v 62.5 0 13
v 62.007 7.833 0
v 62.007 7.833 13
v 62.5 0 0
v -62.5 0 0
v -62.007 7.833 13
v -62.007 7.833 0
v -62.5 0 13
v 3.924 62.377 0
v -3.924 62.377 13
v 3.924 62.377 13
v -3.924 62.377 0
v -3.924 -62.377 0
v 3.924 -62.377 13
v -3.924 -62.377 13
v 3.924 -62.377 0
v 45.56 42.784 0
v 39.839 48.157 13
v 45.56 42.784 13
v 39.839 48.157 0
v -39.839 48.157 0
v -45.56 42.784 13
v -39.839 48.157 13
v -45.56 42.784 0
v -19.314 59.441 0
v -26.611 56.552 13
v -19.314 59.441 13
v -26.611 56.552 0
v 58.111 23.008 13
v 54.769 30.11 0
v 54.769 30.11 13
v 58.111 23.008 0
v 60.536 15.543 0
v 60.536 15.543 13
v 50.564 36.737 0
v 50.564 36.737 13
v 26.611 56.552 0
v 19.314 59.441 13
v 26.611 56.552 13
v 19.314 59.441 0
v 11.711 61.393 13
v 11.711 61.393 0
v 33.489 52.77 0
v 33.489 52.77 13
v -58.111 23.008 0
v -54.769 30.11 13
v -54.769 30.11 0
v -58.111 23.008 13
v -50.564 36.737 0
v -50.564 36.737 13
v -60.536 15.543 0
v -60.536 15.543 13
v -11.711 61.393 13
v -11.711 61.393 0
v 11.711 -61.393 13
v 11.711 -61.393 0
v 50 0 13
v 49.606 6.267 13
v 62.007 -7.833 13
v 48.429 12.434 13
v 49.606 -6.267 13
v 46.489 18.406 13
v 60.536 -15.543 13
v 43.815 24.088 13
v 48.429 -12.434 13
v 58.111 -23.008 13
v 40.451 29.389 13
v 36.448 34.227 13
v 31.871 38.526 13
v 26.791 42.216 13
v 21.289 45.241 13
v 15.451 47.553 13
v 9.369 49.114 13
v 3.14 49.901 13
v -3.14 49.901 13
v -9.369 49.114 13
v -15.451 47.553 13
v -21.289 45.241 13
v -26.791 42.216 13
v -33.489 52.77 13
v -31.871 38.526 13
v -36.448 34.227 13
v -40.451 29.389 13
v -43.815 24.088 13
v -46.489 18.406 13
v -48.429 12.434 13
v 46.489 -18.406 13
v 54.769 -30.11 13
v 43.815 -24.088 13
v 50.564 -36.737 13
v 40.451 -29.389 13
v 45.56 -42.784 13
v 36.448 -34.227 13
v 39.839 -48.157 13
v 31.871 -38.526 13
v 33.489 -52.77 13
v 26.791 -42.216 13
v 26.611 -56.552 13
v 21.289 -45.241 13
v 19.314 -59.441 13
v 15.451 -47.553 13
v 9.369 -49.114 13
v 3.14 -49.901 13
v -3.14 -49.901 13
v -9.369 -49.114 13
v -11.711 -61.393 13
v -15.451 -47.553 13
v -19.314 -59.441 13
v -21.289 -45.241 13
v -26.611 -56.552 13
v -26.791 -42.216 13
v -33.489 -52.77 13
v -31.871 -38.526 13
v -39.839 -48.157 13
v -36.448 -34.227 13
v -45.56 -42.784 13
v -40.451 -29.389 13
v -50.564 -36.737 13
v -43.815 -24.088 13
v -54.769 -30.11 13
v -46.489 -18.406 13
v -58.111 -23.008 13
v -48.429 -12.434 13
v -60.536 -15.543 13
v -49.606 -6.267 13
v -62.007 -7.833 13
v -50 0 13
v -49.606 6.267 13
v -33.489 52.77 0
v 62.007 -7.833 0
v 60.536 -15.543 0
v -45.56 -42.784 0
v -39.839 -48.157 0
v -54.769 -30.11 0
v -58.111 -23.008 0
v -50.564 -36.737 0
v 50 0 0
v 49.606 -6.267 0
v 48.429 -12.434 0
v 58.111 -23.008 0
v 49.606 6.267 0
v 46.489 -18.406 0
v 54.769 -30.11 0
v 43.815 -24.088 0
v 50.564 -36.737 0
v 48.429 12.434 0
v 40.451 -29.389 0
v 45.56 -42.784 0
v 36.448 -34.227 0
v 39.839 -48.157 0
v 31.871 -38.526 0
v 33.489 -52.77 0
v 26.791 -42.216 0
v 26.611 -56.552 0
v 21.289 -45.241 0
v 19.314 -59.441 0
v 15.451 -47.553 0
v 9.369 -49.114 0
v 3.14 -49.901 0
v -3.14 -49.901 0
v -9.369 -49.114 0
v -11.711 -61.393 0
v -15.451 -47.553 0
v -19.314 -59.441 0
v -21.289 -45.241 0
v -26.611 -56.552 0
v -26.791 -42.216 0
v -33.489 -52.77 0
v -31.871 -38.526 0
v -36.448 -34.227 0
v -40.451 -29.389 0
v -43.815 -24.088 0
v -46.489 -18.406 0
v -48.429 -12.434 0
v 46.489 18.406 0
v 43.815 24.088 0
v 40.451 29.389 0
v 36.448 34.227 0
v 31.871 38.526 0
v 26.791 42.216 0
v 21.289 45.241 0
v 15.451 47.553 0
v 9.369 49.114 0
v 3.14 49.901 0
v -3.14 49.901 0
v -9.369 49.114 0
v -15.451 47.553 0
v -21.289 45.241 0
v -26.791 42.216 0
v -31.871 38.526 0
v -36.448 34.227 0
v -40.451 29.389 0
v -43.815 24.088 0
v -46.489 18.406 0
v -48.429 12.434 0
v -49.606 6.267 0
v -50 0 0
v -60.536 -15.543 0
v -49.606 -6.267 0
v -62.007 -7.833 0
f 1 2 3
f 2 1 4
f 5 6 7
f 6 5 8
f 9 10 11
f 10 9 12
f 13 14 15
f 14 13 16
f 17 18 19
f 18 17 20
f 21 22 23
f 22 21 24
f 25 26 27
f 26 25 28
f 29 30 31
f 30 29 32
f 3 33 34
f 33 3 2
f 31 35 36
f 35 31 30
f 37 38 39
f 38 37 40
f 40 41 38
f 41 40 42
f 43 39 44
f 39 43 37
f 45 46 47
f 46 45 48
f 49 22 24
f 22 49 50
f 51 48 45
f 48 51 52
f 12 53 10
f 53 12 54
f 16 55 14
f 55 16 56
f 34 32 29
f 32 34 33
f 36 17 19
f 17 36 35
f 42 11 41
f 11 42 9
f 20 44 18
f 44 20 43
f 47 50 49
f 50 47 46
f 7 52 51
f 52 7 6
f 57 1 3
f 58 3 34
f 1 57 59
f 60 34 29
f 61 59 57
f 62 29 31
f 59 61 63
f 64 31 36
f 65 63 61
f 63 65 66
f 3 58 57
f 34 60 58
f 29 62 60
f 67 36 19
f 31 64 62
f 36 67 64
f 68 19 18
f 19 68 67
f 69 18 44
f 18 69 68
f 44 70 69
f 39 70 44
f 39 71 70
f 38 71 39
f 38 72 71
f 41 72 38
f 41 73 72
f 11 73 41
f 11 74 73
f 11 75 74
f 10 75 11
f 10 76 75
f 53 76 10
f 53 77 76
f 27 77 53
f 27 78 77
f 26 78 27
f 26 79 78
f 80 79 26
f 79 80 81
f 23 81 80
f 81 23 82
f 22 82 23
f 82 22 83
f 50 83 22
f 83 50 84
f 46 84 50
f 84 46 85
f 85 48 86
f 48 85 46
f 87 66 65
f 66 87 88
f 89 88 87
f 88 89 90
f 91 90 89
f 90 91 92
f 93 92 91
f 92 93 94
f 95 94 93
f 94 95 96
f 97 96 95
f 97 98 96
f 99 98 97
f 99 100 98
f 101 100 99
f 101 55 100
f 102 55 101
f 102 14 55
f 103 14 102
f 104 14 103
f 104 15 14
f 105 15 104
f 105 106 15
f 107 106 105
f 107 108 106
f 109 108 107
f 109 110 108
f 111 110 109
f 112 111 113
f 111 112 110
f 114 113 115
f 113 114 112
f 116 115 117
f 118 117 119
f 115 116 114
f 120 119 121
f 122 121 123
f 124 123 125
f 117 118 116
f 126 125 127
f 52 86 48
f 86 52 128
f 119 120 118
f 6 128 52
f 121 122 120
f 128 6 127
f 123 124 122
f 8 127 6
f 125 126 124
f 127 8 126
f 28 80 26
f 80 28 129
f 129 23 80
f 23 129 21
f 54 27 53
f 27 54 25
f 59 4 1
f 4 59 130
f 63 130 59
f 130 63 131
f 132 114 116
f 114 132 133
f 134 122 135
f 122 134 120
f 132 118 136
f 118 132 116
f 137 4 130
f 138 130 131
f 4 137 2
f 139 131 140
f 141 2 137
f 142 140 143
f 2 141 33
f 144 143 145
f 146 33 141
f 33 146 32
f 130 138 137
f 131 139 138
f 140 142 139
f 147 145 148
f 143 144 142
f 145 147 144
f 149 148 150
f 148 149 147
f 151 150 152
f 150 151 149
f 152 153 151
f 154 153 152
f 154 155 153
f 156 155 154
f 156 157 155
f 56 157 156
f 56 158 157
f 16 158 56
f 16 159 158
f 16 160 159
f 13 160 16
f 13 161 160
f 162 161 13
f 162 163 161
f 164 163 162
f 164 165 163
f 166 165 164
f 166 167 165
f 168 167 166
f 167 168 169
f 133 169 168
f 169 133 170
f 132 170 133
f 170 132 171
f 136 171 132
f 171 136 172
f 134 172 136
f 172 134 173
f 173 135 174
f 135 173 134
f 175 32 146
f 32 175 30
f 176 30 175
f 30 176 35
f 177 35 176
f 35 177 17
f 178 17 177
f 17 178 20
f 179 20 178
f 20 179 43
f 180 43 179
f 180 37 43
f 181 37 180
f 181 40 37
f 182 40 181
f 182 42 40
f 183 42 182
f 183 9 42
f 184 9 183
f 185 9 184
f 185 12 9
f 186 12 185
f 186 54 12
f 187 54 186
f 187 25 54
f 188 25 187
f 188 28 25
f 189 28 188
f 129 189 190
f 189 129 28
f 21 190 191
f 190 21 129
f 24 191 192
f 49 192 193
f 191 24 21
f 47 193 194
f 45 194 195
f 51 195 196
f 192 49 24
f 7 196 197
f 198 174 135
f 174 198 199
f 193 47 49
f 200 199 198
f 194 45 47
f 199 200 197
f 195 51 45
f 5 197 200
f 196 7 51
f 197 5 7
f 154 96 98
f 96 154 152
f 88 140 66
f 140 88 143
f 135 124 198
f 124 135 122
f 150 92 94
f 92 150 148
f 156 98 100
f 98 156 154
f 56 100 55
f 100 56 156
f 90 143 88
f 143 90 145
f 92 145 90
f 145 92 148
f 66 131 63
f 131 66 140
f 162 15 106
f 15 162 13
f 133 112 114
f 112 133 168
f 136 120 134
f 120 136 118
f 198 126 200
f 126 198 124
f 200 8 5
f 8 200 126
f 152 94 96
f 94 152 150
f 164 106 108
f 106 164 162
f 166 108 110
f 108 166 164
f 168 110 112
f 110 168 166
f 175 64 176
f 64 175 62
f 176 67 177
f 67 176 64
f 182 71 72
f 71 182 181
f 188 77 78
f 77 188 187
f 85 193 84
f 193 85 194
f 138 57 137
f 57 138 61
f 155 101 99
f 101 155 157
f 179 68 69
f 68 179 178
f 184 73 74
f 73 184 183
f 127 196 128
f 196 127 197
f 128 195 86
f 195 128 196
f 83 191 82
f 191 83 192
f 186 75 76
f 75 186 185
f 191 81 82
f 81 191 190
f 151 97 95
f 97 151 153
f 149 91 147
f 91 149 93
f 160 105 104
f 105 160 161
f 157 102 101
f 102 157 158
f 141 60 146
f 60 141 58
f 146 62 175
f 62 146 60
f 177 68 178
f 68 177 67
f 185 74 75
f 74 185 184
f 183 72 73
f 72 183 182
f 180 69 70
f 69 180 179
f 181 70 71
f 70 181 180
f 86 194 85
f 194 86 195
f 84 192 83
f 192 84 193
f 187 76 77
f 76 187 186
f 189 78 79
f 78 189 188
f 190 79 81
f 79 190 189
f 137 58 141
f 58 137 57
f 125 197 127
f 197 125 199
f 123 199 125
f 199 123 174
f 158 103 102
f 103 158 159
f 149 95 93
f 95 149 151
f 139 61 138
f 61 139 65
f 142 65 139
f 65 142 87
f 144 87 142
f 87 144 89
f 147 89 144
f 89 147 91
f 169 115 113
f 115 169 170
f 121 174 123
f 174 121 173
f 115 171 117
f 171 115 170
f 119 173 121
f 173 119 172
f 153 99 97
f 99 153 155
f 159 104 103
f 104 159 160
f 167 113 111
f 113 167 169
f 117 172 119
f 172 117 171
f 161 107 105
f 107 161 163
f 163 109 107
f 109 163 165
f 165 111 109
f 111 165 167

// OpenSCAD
$fn = 50;


difference() {
	union() {
		cylinder(h = 13, r = 62.5000000000);
	}
	union() {
		cylinder(h = 13, r = 50.0000000000);
	}
}
